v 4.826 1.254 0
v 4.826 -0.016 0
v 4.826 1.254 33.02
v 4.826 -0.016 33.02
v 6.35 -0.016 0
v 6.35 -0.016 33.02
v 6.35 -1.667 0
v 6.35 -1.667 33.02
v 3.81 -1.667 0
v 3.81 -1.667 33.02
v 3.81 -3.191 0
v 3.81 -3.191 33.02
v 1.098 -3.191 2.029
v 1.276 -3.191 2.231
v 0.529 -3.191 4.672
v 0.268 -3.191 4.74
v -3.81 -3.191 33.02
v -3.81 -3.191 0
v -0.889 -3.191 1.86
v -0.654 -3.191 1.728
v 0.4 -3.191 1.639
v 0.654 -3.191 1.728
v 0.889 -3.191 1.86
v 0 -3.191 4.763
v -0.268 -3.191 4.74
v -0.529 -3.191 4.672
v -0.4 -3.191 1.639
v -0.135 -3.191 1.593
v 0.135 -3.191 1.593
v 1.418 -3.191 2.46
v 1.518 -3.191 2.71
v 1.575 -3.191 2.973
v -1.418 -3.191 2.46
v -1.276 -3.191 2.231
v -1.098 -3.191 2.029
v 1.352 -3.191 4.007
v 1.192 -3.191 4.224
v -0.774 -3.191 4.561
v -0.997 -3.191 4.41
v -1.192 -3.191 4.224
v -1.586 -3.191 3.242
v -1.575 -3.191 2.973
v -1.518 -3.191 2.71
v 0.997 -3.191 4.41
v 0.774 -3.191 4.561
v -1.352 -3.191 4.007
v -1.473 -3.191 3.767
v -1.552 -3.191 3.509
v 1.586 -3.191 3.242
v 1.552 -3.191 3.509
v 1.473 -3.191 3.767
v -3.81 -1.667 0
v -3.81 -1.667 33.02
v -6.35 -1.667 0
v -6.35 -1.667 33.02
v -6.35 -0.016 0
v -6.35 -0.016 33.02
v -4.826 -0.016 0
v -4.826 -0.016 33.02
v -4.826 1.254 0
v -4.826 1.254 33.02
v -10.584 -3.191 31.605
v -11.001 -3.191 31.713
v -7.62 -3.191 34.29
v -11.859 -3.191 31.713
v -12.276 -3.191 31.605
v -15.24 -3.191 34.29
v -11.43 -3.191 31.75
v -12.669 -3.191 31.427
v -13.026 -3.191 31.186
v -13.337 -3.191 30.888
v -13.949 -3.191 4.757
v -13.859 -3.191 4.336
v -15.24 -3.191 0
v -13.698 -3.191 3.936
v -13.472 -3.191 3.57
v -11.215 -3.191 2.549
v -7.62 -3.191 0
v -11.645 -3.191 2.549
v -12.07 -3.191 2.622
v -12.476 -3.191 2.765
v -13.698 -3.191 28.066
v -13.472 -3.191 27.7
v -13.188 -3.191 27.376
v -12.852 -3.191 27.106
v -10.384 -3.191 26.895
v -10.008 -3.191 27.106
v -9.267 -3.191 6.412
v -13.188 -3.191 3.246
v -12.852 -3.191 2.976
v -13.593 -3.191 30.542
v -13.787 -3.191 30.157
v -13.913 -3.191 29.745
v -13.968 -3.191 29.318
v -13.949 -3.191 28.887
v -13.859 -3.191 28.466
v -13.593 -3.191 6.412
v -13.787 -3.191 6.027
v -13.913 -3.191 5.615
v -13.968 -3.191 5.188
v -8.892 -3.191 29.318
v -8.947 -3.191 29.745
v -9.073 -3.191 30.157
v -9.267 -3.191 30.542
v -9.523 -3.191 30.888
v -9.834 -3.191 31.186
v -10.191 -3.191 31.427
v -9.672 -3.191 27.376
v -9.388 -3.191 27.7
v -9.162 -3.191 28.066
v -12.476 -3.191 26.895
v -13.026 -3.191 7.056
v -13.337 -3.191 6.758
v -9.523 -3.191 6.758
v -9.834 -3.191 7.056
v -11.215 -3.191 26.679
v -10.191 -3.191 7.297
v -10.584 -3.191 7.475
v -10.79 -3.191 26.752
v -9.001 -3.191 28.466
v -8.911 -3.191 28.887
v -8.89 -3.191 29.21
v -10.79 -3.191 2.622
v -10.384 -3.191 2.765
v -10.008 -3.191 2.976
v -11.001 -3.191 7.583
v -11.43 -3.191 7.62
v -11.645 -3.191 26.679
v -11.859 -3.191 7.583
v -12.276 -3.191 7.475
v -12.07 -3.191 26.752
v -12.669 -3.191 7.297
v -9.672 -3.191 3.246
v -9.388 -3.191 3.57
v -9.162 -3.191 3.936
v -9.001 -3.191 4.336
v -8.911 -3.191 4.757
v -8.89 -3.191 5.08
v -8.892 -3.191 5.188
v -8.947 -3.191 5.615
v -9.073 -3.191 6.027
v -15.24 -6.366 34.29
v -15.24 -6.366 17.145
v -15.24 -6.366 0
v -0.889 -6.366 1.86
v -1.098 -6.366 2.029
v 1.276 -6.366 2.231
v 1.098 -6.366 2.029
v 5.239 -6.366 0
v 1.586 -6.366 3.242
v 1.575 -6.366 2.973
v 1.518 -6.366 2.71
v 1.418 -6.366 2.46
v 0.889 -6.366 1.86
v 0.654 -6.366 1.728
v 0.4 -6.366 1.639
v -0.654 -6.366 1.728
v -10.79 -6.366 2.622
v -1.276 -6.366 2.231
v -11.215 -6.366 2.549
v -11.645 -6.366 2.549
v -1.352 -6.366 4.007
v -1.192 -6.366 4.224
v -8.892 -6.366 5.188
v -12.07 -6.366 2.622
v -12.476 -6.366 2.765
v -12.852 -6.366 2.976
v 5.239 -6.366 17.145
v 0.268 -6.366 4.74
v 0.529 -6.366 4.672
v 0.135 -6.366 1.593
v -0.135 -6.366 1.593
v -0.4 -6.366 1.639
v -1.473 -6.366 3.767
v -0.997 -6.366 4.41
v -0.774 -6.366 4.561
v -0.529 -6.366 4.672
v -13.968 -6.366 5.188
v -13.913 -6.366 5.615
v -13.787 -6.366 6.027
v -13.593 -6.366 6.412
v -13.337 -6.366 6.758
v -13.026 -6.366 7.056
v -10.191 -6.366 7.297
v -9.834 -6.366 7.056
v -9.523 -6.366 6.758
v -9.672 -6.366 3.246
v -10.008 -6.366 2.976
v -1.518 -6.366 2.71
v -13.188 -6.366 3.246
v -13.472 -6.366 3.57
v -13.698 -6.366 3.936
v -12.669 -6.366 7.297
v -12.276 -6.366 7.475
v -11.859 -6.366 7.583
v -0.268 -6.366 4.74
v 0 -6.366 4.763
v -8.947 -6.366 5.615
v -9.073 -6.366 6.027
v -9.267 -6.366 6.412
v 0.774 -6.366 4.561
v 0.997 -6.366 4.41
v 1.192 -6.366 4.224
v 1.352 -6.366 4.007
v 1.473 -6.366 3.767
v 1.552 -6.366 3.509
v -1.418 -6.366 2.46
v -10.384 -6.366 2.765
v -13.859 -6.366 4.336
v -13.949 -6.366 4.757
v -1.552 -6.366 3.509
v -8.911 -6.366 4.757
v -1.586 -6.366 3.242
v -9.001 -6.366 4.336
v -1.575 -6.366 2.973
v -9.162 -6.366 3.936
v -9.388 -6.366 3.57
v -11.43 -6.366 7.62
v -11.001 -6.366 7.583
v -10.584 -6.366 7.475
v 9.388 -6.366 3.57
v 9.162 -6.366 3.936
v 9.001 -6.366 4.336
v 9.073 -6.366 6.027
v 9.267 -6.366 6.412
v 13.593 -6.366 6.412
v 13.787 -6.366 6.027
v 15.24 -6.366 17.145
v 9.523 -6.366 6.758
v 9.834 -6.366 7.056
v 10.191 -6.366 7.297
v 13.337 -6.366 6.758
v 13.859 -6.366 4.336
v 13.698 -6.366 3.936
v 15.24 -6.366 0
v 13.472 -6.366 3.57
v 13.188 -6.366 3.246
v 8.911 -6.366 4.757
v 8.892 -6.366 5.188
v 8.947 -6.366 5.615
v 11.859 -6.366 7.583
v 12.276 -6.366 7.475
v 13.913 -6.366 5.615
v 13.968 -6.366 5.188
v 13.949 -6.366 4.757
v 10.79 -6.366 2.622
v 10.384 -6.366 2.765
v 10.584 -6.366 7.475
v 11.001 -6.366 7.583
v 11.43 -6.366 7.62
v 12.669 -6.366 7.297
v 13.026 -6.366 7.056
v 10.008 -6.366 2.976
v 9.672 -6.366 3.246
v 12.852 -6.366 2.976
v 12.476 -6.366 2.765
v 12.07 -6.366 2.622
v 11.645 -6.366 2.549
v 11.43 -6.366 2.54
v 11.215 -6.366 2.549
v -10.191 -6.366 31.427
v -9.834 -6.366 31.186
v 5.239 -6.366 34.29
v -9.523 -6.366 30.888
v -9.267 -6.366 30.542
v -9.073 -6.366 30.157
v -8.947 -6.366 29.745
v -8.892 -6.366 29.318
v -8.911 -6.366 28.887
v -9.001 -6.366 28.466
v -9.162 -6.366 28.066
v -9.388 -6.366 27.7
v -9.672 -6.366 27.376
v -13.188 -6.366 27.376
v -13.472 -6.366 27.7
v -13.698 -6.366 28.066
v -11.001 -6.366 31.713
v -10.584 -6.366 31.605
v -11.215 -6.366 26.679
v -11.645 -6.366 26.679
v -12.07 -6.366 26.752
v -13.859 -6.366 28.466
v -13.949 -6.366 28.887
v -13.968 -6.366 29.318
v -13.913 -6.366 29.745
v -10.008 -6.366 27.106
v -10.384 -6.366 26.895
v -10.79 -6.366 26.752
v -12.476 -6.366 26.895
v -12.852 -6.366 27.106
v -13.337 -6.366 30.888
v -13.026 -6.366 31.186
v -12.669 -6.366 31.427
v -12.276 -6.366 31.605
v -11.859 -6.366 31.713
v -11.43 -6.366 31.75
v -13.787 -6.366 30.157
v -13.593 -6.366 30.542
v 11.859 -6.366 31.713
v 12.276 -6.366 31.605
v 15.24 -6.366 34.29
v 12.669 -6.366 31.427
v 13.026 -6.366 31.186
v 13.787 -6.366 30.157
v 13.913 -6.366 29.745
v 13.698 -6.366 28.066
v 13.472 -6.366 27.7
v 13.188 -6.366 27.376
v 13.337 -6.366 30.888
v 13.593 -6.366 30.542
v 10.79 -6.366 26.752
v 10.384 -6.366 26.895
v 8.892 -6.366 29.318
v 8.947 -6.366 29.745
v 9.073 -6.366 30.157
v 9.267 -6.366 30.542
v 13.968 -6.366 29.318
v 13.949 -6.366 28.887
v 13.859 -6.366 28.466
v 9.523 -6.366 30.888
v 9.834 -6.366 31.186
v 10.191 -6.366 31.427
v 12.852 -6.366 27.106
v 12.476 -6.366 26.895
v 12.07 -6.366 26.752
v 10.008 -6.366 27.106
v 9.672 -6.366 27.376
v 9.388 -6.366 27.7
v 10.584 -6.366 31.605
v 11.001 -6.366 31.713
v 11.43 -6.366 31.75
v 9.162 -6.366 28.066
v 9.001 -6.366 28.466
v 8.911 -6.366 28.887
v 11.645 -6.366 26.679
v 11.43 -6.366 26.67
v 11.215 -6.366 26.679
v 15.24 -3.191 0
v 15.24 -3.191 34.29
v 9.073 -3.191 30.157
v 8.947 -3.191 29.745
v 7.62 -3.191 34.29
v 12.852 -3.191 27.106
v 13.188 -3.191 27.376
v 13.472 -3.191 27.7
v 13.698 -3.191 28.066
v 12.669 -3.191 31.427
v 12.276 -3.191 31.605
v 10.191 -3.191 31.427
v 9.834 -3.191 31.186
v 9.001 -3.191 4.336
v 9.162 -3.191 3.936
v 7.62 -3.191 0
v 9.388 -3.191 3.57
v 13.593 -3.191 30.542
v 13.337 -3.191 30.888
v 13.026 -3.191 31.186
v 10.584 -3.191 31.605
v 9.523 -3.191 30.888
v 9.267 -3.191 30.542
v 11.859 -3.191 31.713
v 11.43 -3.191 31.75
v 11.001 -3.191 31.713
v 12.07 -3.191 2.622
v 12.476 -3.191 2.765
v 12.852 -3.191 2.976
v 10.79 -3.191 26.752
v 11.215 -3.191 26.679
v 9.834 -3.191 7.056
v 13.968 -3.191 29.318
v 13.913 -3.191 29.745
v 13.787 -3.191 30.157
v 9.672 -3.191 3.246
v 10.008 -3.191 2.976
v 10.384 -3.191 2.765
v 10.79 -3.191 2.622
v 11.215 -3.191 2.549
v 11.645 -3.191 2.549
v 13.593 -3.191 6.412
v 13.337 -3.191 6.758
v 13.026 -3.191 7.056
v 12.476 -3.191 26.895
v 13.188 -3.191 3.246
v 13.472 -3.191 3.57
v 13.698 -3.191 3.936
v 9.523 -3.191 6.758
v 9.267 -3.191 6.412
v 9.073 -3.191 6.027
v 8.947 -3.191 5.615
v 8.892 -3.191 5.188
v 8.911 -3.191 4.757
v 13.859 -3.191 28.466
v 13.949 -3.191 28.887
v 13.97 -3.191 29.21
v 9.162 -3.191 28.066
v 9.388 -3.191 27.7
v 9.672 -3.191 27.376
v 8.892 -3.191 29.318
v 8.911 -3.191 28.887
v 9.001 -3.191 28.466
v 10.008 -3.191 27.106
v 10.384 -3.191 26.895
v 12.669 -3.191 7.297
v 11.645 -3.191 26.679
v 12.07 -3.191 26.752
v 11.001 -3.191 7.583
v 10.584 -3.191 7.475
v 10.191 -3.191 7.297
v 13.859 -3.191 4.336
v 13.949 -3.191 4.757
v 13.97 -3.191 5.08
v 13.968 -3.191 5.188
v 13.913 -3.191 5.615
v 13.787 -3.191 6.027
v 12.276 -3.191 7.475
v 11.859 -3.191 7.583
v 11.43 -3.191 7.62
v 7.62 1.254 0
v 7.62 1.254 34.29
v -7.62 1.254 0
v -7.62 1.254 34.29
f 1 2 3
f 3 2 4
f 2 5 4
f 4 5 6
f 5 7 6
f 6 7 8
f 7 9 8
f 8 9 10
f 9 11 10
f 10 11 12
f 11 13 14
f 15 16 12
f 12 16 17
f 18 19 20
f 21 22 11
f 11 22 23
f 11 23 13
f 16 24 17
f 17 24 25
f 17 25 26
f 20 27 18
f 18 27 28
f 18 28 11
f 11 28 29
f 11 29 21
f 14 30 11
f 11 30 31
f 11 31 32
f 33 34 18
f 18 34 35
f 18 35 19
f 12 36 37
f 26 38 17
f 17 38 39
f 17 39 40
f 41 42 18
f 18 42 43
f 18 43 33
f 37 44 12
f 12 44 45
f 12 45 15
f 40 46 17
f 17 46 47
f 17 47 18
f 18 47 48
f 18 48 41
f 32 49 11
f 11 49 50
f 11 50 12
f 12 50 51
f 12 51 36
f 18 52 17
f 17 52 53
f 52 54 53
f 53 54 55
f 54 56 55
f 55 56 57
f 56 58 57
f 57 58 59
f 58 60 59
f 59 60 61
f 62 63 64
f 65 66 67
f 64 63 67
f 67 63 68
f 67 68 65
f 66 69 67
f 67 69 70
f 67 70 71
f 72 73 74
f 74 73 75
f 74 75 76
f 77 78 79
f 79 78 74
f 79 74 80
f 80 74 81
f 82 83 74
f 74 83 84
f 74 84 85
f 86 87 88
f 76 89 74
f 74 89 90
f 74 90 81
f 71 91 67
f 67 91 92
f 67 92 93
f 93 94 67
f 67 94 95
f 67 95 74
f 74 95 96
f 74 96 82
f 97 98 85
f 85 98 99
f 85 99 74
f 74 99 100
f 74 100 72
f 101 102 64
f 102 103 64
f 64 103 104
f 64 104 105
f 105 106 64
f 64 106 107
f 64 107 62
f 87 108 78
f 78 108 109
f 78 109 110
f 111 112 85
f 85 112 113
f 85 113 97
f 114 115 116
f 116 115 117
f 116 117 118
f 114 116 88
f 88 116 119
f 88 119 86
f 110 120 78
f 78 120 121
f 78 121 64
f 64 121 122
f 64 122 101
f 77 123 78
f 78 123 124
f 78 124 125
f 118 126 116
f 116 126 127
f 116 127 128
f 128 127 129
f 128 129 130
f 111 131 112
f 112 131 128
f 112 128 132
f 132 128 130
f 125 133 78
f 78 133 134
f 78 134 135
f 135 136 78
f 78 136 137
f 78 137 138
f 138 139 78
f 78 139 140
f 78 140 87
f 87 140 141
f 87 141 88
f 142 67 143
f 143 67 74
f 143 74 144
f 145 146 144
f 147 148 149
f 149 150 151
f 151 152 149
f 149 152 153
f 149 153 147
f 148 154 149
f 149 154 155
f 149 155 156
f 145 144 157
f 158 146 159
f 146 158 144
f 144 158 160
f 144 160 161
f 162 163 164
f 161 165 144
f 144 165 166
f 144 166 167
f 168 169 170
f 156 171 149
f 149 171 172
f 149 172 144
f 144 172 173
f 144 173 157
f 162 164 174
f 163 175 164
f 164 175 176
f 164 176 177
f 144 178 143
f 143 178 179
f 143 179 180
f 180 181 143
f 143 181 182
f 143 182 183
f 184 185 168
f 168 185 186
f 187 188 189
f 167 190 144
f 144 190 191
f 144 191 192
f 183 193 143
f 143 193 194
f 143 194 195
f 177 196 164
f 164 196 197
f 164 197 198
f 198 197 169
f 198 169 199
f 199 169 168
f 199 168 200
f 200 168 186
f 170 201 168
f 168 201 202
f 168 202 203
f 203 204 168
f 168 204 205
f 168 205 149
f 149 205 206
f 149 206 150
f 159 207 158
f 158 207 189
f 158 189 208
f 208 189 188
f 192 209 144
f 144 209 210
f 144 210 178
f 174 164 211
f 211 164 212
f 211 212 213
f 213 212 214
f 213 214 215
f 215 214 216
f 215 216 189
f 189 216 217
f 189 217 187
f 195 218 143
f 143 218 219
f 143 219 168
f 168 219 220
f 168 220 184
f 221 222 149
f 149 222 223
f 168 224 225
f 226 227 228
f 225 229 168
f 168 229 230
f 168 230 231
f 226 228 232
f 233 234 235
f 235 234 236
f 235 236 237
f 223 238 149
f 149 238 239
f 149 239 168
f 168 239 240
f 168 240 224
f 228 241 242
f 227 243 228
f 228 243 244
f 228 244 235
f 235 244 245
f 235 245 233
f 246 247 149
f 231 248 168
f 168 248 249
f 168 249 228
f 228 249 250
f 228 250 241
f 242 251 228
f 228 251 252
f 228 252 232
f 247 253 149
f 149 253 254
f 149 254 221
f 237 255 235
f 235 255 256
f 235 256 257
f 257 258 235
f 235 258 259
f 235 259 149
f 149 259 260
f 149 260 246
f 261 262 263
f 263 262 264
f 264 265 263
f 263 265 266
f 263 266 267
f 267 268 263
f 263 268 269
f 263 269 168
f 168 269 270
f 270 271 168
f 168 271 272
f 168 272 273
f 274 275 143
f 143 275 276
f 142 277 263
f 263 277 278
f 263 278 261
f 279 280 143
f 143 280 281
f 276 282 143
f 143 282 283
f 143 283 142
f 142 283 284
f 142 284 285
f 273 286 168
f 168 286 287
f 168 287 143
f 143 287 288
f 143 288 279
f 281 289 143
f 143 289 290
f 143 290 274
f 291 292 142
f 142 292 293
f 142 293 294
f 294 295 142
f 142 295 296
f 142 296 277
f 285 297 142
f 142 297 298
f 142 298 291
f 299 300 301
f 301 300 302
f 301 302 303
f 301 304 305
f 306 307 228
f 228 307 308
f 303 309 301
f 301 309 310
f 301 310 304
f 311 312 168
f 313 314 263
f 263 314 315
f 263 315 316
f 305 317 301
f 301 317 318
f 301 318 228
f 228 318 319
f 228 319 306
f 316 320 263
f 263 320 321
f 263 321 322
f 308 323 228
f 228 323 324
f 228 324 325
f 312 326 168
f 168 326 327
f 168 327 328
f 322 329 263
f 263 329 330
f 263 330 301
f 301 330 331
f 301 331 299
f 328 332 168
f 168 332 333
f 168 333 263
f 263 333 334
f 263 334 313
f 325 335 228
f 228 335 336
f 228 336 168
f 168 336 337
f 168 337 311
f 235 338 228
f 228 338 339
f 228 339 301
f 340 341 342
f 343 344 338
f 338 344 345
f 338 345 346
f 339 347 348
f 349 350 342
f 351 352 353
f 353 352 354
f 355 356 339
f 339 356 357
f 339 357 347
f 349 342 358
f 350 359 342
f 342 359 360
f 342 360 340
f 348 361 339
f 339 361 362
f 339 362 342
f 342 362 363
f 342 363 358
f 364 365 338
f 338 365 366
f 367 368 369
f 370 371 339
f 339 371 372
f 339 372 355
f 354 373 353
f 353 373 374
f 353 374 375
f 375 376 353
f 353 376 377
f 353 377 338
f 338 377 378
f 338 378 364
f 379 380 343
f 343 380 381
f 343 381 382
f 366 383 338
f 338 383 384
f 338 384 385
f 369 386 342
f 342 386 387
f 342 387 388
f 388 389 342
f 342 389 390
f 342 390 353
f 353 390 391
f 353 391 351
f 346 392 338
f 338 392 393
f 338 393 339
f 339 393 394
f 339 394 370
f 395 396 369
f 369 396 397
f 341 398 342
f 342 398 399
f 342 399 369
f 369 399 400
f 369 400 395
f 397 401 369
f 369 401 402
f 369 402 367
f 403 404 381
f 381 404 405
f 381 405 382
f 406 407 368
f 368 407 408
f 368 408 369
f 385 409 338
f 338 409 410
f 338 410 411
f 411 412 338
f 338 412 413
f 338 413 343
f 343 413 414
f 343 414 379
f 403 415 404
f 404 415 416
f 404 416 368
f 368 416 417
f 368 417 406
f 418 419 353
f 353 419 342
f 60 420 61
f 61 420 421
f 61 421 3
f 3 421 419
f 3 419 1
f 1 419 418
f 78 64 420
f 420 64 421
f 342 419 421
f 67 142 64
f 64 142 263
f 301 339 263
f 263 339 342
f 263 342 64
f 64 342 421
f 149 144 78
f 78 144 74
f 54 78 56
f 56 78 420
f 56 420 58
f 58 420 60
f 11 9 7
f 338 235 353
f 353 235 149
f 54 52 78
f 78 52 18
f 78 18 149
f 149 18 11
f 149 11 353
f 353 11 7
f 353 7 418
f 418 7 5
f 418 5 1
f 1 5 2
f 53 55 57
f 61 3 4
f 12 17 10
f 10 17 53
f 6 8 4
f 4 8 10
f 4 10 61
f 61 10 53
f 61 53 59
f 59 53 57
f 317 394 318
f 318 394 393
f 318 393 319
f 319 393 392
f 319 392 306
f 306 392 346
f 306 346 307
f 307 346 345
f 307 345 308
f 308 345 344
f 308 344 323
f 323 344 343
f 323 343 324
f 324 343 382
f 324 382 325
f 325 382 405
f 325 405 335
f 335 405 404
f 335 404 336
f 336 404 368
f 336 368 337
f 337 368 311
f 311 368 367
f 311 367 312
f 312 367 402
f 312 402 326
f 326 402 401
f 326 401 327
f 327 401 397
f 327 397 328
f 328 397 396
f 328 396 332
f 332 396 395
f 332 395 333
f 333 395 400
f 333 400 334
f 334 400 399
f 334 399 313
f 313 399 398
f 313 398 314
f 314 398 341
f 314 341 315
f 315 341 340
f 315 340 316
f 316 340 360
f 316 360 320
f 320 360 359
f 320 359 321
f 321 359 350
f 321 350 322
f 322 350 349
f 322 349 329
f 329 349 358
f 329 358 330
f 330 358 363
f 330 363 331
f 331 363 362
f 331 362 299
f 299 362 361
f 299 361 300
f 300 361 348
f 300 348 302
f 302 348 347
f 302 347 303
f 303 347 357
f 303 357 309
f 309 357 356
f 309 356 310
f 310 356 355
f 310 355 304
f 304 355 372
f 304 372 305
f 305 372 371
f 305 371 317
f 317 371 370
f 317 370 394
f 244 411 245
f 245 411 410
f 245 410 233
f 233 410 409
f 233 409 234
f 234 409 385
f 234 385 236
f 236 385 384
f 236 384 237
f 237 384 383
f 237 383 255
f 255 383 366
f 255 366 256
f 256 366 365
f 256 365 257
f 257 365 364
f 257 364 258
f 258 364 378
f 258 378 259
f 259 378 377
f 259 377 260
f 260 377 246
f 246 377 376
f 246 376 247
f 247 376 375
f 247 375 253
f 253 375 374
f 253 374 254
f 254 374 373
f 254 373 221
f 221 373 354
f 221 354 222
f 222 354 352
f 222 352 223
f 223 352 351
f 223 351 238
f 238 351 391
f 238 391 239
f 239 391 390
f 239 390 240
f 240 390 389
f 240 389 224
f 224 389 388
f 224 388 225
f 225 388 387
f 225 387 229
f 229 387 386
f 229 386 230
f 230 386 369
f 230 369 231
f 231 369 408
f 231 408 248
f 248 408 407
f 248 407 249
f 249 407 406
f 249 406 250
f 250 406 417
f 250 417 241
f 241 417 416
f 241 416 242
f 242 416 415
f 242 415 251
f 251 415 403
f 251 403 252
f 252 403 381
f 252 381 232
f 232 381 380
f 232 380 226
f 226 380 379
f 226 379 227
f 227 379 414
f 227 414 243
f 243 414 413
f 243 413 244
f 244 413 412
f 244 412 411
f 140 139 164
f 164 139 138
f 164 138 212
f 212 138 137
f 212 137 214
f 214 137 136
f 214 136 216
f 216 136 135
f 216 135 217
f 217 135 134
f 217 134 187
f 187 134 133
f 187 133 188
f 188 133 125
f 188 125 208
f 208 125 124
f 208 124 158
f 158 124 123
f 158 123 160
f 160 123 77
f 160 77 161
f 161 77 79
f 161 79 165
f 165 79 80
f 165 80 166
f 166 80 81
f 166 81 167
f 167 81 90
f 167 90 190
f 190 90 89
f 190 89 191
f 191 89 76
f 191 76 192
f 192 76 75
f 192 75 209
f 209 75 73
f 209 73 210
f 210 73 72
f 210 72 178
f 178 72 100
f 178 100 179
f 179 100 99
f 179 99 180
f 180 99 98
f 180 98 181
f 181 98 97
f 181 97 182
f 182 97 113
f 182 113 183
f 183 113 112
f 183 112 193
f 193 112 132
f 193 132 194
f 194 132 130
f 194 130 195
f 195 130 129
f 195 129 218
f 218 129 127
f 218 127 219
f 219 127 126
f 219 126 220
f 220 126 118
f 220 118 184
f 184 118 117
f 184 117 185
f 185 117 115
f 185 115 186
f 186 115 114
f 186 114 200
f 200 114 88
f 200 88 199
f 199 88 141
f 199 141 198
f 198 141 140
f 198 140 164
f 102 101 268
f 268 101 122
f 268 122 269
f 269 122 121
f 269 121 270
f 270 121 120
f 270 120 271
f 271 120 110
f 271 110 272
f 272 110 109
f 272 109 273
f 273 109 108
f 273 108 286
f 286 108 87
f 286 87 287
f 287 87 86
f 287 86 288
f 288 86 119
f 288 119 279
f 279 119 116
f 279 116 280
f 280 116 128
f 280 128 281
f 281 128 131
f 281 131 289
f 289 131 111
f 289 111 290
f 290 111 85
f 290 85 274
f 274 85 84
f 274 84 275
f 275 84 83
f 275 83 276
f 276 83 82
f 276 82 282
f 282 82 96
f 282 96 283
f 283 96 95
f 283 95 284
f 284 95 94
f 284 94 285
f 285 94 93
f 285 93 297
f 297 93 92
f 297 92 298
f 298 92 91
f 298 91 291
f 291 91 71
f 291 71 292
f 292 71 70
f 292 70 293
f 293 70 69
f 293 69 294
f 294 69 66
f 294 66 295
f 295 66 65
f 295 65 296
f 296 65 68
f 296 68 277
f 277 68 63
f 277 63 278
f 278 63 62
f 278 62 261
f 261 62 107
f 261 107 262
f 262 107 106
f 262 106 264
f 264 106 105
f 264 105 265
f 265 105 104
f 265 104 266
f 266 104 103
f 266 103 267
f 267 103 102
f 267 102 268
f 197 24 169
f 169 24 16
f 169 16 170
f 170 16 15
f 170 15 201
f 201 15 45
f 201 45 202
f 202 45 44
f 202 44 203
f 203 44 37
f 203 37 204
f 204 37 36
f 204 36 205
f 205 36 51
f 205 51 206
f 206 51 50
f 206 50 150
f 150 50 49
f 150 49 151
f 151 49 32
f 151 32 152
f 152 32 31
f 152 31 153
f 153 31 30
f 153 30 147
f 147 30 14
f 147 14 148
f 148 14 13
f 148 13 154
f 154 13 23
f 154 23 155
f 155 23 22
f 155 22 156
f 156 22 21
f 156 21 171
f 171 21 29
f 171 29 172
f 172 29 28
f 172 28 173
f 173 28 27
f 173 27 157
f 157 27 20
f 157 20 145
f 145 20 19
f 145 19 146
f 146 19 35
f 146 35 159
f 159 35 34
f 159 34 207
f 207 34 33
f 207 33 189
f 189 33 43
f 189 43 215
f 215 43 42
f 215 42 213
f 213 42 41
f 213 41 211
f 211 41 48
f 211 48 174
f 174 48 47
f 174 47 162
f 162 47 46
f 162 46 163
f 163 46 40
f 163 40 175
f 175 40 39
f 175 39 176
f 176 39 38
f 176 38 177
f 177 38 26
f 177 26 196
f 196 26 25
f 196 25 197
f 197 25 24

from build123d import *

# Parameters (mm, degrees)
BOSS_EXTRUDE1_DEPTH = 34.29
SKETCH3_W           = 15.24
SKETCH3_H           = 4.445
BOSS_EXTRUDE3_DEPTH = 1.27
SKETCH4_R           = 2.54
CUT_EXTRUDE1_DEPTH  = 7.366092844
SKETCH5_R           = 1.5875
CUT_EXTRUDE2_DEPTH  = 4.175


with BuildPart() as part:
    # Sketch1 → Boss-Extrude1 (new body)
    with BuildSketch(Plane.XY):
        Polygon((3.81, -3.191092844), (-3.81, -3.191092844), (-3.81, -1.667092844), (-6.35, -1.667092844), (-6.35, -0.016092844), (-4.826, -0.016092844), (-4.826, 1.253907156), (-7.62, 1.253907156), (-7.62, -3.191092844), (-15.24, -3.191092844), (-15.24, -6.366092844), (-8.89, -6.366092844), (8.89, -6.366092844), (15.24, -6.366092844), (15.24, -3.191092844), (7.62, -3.191092844), (7.62, 1.253907156), (4.826, 1.253907156), (4.826, -0.016092844), (6.35, -0.016092844), (6.35, -1.667092844), (3.81, -1.667092844), align=None)
    extrude(amount=BOSS_EXTRUDE1_DEPTH)

    # Sketch3 → Boss-Extrude3 (add)
    with BuildSketch(Plane.XY.offset(34.29)):
        with Locations((0, -0.968592844)):
            Rectangle(SKETCH3_W, SKETCH3_H)
    extrude(amount=-BOSS_EXTRUDE3_DEPTH)

    # Sketch4 → Cut-Extrude1 (cut, through all)
    with BuildSketch(Plane(origin=(0, 0, 0), x_dir=(1, 0, 0), z_dir=(0, 1, 0))):
        with Locations((-11.43, -5.08)):
            Circle(SKETCH4_R)
        with Locations((-11.43, -29.21)):
            Circle(SKETCH4_R)
        with Locations((11.43, -29.21)):
            Circle(SKETCH4_R)
        with Locations((11.43, -5.08)):
            Circle(SKETCH4_R)
    extrude(amount=-CUT_EXTRUDE1_DEPTH, mode=Mode.SUBTRACT)

    # Sketch5 → Cut-Extrude2 (cut, through all)
    with BuildSketch(Plane(origin=(0, -3.191092844, 0), x_dir=(1, 0, 0), z_dir=(0, 1, 0))):
        with Locations((0, -3.175)):
            Circle(SKETCH5_R)
    extrude(amount=-CUT_EXTRUDE2_DEPTH, mode=Mode.SUBTRACT)


solid = part.part
